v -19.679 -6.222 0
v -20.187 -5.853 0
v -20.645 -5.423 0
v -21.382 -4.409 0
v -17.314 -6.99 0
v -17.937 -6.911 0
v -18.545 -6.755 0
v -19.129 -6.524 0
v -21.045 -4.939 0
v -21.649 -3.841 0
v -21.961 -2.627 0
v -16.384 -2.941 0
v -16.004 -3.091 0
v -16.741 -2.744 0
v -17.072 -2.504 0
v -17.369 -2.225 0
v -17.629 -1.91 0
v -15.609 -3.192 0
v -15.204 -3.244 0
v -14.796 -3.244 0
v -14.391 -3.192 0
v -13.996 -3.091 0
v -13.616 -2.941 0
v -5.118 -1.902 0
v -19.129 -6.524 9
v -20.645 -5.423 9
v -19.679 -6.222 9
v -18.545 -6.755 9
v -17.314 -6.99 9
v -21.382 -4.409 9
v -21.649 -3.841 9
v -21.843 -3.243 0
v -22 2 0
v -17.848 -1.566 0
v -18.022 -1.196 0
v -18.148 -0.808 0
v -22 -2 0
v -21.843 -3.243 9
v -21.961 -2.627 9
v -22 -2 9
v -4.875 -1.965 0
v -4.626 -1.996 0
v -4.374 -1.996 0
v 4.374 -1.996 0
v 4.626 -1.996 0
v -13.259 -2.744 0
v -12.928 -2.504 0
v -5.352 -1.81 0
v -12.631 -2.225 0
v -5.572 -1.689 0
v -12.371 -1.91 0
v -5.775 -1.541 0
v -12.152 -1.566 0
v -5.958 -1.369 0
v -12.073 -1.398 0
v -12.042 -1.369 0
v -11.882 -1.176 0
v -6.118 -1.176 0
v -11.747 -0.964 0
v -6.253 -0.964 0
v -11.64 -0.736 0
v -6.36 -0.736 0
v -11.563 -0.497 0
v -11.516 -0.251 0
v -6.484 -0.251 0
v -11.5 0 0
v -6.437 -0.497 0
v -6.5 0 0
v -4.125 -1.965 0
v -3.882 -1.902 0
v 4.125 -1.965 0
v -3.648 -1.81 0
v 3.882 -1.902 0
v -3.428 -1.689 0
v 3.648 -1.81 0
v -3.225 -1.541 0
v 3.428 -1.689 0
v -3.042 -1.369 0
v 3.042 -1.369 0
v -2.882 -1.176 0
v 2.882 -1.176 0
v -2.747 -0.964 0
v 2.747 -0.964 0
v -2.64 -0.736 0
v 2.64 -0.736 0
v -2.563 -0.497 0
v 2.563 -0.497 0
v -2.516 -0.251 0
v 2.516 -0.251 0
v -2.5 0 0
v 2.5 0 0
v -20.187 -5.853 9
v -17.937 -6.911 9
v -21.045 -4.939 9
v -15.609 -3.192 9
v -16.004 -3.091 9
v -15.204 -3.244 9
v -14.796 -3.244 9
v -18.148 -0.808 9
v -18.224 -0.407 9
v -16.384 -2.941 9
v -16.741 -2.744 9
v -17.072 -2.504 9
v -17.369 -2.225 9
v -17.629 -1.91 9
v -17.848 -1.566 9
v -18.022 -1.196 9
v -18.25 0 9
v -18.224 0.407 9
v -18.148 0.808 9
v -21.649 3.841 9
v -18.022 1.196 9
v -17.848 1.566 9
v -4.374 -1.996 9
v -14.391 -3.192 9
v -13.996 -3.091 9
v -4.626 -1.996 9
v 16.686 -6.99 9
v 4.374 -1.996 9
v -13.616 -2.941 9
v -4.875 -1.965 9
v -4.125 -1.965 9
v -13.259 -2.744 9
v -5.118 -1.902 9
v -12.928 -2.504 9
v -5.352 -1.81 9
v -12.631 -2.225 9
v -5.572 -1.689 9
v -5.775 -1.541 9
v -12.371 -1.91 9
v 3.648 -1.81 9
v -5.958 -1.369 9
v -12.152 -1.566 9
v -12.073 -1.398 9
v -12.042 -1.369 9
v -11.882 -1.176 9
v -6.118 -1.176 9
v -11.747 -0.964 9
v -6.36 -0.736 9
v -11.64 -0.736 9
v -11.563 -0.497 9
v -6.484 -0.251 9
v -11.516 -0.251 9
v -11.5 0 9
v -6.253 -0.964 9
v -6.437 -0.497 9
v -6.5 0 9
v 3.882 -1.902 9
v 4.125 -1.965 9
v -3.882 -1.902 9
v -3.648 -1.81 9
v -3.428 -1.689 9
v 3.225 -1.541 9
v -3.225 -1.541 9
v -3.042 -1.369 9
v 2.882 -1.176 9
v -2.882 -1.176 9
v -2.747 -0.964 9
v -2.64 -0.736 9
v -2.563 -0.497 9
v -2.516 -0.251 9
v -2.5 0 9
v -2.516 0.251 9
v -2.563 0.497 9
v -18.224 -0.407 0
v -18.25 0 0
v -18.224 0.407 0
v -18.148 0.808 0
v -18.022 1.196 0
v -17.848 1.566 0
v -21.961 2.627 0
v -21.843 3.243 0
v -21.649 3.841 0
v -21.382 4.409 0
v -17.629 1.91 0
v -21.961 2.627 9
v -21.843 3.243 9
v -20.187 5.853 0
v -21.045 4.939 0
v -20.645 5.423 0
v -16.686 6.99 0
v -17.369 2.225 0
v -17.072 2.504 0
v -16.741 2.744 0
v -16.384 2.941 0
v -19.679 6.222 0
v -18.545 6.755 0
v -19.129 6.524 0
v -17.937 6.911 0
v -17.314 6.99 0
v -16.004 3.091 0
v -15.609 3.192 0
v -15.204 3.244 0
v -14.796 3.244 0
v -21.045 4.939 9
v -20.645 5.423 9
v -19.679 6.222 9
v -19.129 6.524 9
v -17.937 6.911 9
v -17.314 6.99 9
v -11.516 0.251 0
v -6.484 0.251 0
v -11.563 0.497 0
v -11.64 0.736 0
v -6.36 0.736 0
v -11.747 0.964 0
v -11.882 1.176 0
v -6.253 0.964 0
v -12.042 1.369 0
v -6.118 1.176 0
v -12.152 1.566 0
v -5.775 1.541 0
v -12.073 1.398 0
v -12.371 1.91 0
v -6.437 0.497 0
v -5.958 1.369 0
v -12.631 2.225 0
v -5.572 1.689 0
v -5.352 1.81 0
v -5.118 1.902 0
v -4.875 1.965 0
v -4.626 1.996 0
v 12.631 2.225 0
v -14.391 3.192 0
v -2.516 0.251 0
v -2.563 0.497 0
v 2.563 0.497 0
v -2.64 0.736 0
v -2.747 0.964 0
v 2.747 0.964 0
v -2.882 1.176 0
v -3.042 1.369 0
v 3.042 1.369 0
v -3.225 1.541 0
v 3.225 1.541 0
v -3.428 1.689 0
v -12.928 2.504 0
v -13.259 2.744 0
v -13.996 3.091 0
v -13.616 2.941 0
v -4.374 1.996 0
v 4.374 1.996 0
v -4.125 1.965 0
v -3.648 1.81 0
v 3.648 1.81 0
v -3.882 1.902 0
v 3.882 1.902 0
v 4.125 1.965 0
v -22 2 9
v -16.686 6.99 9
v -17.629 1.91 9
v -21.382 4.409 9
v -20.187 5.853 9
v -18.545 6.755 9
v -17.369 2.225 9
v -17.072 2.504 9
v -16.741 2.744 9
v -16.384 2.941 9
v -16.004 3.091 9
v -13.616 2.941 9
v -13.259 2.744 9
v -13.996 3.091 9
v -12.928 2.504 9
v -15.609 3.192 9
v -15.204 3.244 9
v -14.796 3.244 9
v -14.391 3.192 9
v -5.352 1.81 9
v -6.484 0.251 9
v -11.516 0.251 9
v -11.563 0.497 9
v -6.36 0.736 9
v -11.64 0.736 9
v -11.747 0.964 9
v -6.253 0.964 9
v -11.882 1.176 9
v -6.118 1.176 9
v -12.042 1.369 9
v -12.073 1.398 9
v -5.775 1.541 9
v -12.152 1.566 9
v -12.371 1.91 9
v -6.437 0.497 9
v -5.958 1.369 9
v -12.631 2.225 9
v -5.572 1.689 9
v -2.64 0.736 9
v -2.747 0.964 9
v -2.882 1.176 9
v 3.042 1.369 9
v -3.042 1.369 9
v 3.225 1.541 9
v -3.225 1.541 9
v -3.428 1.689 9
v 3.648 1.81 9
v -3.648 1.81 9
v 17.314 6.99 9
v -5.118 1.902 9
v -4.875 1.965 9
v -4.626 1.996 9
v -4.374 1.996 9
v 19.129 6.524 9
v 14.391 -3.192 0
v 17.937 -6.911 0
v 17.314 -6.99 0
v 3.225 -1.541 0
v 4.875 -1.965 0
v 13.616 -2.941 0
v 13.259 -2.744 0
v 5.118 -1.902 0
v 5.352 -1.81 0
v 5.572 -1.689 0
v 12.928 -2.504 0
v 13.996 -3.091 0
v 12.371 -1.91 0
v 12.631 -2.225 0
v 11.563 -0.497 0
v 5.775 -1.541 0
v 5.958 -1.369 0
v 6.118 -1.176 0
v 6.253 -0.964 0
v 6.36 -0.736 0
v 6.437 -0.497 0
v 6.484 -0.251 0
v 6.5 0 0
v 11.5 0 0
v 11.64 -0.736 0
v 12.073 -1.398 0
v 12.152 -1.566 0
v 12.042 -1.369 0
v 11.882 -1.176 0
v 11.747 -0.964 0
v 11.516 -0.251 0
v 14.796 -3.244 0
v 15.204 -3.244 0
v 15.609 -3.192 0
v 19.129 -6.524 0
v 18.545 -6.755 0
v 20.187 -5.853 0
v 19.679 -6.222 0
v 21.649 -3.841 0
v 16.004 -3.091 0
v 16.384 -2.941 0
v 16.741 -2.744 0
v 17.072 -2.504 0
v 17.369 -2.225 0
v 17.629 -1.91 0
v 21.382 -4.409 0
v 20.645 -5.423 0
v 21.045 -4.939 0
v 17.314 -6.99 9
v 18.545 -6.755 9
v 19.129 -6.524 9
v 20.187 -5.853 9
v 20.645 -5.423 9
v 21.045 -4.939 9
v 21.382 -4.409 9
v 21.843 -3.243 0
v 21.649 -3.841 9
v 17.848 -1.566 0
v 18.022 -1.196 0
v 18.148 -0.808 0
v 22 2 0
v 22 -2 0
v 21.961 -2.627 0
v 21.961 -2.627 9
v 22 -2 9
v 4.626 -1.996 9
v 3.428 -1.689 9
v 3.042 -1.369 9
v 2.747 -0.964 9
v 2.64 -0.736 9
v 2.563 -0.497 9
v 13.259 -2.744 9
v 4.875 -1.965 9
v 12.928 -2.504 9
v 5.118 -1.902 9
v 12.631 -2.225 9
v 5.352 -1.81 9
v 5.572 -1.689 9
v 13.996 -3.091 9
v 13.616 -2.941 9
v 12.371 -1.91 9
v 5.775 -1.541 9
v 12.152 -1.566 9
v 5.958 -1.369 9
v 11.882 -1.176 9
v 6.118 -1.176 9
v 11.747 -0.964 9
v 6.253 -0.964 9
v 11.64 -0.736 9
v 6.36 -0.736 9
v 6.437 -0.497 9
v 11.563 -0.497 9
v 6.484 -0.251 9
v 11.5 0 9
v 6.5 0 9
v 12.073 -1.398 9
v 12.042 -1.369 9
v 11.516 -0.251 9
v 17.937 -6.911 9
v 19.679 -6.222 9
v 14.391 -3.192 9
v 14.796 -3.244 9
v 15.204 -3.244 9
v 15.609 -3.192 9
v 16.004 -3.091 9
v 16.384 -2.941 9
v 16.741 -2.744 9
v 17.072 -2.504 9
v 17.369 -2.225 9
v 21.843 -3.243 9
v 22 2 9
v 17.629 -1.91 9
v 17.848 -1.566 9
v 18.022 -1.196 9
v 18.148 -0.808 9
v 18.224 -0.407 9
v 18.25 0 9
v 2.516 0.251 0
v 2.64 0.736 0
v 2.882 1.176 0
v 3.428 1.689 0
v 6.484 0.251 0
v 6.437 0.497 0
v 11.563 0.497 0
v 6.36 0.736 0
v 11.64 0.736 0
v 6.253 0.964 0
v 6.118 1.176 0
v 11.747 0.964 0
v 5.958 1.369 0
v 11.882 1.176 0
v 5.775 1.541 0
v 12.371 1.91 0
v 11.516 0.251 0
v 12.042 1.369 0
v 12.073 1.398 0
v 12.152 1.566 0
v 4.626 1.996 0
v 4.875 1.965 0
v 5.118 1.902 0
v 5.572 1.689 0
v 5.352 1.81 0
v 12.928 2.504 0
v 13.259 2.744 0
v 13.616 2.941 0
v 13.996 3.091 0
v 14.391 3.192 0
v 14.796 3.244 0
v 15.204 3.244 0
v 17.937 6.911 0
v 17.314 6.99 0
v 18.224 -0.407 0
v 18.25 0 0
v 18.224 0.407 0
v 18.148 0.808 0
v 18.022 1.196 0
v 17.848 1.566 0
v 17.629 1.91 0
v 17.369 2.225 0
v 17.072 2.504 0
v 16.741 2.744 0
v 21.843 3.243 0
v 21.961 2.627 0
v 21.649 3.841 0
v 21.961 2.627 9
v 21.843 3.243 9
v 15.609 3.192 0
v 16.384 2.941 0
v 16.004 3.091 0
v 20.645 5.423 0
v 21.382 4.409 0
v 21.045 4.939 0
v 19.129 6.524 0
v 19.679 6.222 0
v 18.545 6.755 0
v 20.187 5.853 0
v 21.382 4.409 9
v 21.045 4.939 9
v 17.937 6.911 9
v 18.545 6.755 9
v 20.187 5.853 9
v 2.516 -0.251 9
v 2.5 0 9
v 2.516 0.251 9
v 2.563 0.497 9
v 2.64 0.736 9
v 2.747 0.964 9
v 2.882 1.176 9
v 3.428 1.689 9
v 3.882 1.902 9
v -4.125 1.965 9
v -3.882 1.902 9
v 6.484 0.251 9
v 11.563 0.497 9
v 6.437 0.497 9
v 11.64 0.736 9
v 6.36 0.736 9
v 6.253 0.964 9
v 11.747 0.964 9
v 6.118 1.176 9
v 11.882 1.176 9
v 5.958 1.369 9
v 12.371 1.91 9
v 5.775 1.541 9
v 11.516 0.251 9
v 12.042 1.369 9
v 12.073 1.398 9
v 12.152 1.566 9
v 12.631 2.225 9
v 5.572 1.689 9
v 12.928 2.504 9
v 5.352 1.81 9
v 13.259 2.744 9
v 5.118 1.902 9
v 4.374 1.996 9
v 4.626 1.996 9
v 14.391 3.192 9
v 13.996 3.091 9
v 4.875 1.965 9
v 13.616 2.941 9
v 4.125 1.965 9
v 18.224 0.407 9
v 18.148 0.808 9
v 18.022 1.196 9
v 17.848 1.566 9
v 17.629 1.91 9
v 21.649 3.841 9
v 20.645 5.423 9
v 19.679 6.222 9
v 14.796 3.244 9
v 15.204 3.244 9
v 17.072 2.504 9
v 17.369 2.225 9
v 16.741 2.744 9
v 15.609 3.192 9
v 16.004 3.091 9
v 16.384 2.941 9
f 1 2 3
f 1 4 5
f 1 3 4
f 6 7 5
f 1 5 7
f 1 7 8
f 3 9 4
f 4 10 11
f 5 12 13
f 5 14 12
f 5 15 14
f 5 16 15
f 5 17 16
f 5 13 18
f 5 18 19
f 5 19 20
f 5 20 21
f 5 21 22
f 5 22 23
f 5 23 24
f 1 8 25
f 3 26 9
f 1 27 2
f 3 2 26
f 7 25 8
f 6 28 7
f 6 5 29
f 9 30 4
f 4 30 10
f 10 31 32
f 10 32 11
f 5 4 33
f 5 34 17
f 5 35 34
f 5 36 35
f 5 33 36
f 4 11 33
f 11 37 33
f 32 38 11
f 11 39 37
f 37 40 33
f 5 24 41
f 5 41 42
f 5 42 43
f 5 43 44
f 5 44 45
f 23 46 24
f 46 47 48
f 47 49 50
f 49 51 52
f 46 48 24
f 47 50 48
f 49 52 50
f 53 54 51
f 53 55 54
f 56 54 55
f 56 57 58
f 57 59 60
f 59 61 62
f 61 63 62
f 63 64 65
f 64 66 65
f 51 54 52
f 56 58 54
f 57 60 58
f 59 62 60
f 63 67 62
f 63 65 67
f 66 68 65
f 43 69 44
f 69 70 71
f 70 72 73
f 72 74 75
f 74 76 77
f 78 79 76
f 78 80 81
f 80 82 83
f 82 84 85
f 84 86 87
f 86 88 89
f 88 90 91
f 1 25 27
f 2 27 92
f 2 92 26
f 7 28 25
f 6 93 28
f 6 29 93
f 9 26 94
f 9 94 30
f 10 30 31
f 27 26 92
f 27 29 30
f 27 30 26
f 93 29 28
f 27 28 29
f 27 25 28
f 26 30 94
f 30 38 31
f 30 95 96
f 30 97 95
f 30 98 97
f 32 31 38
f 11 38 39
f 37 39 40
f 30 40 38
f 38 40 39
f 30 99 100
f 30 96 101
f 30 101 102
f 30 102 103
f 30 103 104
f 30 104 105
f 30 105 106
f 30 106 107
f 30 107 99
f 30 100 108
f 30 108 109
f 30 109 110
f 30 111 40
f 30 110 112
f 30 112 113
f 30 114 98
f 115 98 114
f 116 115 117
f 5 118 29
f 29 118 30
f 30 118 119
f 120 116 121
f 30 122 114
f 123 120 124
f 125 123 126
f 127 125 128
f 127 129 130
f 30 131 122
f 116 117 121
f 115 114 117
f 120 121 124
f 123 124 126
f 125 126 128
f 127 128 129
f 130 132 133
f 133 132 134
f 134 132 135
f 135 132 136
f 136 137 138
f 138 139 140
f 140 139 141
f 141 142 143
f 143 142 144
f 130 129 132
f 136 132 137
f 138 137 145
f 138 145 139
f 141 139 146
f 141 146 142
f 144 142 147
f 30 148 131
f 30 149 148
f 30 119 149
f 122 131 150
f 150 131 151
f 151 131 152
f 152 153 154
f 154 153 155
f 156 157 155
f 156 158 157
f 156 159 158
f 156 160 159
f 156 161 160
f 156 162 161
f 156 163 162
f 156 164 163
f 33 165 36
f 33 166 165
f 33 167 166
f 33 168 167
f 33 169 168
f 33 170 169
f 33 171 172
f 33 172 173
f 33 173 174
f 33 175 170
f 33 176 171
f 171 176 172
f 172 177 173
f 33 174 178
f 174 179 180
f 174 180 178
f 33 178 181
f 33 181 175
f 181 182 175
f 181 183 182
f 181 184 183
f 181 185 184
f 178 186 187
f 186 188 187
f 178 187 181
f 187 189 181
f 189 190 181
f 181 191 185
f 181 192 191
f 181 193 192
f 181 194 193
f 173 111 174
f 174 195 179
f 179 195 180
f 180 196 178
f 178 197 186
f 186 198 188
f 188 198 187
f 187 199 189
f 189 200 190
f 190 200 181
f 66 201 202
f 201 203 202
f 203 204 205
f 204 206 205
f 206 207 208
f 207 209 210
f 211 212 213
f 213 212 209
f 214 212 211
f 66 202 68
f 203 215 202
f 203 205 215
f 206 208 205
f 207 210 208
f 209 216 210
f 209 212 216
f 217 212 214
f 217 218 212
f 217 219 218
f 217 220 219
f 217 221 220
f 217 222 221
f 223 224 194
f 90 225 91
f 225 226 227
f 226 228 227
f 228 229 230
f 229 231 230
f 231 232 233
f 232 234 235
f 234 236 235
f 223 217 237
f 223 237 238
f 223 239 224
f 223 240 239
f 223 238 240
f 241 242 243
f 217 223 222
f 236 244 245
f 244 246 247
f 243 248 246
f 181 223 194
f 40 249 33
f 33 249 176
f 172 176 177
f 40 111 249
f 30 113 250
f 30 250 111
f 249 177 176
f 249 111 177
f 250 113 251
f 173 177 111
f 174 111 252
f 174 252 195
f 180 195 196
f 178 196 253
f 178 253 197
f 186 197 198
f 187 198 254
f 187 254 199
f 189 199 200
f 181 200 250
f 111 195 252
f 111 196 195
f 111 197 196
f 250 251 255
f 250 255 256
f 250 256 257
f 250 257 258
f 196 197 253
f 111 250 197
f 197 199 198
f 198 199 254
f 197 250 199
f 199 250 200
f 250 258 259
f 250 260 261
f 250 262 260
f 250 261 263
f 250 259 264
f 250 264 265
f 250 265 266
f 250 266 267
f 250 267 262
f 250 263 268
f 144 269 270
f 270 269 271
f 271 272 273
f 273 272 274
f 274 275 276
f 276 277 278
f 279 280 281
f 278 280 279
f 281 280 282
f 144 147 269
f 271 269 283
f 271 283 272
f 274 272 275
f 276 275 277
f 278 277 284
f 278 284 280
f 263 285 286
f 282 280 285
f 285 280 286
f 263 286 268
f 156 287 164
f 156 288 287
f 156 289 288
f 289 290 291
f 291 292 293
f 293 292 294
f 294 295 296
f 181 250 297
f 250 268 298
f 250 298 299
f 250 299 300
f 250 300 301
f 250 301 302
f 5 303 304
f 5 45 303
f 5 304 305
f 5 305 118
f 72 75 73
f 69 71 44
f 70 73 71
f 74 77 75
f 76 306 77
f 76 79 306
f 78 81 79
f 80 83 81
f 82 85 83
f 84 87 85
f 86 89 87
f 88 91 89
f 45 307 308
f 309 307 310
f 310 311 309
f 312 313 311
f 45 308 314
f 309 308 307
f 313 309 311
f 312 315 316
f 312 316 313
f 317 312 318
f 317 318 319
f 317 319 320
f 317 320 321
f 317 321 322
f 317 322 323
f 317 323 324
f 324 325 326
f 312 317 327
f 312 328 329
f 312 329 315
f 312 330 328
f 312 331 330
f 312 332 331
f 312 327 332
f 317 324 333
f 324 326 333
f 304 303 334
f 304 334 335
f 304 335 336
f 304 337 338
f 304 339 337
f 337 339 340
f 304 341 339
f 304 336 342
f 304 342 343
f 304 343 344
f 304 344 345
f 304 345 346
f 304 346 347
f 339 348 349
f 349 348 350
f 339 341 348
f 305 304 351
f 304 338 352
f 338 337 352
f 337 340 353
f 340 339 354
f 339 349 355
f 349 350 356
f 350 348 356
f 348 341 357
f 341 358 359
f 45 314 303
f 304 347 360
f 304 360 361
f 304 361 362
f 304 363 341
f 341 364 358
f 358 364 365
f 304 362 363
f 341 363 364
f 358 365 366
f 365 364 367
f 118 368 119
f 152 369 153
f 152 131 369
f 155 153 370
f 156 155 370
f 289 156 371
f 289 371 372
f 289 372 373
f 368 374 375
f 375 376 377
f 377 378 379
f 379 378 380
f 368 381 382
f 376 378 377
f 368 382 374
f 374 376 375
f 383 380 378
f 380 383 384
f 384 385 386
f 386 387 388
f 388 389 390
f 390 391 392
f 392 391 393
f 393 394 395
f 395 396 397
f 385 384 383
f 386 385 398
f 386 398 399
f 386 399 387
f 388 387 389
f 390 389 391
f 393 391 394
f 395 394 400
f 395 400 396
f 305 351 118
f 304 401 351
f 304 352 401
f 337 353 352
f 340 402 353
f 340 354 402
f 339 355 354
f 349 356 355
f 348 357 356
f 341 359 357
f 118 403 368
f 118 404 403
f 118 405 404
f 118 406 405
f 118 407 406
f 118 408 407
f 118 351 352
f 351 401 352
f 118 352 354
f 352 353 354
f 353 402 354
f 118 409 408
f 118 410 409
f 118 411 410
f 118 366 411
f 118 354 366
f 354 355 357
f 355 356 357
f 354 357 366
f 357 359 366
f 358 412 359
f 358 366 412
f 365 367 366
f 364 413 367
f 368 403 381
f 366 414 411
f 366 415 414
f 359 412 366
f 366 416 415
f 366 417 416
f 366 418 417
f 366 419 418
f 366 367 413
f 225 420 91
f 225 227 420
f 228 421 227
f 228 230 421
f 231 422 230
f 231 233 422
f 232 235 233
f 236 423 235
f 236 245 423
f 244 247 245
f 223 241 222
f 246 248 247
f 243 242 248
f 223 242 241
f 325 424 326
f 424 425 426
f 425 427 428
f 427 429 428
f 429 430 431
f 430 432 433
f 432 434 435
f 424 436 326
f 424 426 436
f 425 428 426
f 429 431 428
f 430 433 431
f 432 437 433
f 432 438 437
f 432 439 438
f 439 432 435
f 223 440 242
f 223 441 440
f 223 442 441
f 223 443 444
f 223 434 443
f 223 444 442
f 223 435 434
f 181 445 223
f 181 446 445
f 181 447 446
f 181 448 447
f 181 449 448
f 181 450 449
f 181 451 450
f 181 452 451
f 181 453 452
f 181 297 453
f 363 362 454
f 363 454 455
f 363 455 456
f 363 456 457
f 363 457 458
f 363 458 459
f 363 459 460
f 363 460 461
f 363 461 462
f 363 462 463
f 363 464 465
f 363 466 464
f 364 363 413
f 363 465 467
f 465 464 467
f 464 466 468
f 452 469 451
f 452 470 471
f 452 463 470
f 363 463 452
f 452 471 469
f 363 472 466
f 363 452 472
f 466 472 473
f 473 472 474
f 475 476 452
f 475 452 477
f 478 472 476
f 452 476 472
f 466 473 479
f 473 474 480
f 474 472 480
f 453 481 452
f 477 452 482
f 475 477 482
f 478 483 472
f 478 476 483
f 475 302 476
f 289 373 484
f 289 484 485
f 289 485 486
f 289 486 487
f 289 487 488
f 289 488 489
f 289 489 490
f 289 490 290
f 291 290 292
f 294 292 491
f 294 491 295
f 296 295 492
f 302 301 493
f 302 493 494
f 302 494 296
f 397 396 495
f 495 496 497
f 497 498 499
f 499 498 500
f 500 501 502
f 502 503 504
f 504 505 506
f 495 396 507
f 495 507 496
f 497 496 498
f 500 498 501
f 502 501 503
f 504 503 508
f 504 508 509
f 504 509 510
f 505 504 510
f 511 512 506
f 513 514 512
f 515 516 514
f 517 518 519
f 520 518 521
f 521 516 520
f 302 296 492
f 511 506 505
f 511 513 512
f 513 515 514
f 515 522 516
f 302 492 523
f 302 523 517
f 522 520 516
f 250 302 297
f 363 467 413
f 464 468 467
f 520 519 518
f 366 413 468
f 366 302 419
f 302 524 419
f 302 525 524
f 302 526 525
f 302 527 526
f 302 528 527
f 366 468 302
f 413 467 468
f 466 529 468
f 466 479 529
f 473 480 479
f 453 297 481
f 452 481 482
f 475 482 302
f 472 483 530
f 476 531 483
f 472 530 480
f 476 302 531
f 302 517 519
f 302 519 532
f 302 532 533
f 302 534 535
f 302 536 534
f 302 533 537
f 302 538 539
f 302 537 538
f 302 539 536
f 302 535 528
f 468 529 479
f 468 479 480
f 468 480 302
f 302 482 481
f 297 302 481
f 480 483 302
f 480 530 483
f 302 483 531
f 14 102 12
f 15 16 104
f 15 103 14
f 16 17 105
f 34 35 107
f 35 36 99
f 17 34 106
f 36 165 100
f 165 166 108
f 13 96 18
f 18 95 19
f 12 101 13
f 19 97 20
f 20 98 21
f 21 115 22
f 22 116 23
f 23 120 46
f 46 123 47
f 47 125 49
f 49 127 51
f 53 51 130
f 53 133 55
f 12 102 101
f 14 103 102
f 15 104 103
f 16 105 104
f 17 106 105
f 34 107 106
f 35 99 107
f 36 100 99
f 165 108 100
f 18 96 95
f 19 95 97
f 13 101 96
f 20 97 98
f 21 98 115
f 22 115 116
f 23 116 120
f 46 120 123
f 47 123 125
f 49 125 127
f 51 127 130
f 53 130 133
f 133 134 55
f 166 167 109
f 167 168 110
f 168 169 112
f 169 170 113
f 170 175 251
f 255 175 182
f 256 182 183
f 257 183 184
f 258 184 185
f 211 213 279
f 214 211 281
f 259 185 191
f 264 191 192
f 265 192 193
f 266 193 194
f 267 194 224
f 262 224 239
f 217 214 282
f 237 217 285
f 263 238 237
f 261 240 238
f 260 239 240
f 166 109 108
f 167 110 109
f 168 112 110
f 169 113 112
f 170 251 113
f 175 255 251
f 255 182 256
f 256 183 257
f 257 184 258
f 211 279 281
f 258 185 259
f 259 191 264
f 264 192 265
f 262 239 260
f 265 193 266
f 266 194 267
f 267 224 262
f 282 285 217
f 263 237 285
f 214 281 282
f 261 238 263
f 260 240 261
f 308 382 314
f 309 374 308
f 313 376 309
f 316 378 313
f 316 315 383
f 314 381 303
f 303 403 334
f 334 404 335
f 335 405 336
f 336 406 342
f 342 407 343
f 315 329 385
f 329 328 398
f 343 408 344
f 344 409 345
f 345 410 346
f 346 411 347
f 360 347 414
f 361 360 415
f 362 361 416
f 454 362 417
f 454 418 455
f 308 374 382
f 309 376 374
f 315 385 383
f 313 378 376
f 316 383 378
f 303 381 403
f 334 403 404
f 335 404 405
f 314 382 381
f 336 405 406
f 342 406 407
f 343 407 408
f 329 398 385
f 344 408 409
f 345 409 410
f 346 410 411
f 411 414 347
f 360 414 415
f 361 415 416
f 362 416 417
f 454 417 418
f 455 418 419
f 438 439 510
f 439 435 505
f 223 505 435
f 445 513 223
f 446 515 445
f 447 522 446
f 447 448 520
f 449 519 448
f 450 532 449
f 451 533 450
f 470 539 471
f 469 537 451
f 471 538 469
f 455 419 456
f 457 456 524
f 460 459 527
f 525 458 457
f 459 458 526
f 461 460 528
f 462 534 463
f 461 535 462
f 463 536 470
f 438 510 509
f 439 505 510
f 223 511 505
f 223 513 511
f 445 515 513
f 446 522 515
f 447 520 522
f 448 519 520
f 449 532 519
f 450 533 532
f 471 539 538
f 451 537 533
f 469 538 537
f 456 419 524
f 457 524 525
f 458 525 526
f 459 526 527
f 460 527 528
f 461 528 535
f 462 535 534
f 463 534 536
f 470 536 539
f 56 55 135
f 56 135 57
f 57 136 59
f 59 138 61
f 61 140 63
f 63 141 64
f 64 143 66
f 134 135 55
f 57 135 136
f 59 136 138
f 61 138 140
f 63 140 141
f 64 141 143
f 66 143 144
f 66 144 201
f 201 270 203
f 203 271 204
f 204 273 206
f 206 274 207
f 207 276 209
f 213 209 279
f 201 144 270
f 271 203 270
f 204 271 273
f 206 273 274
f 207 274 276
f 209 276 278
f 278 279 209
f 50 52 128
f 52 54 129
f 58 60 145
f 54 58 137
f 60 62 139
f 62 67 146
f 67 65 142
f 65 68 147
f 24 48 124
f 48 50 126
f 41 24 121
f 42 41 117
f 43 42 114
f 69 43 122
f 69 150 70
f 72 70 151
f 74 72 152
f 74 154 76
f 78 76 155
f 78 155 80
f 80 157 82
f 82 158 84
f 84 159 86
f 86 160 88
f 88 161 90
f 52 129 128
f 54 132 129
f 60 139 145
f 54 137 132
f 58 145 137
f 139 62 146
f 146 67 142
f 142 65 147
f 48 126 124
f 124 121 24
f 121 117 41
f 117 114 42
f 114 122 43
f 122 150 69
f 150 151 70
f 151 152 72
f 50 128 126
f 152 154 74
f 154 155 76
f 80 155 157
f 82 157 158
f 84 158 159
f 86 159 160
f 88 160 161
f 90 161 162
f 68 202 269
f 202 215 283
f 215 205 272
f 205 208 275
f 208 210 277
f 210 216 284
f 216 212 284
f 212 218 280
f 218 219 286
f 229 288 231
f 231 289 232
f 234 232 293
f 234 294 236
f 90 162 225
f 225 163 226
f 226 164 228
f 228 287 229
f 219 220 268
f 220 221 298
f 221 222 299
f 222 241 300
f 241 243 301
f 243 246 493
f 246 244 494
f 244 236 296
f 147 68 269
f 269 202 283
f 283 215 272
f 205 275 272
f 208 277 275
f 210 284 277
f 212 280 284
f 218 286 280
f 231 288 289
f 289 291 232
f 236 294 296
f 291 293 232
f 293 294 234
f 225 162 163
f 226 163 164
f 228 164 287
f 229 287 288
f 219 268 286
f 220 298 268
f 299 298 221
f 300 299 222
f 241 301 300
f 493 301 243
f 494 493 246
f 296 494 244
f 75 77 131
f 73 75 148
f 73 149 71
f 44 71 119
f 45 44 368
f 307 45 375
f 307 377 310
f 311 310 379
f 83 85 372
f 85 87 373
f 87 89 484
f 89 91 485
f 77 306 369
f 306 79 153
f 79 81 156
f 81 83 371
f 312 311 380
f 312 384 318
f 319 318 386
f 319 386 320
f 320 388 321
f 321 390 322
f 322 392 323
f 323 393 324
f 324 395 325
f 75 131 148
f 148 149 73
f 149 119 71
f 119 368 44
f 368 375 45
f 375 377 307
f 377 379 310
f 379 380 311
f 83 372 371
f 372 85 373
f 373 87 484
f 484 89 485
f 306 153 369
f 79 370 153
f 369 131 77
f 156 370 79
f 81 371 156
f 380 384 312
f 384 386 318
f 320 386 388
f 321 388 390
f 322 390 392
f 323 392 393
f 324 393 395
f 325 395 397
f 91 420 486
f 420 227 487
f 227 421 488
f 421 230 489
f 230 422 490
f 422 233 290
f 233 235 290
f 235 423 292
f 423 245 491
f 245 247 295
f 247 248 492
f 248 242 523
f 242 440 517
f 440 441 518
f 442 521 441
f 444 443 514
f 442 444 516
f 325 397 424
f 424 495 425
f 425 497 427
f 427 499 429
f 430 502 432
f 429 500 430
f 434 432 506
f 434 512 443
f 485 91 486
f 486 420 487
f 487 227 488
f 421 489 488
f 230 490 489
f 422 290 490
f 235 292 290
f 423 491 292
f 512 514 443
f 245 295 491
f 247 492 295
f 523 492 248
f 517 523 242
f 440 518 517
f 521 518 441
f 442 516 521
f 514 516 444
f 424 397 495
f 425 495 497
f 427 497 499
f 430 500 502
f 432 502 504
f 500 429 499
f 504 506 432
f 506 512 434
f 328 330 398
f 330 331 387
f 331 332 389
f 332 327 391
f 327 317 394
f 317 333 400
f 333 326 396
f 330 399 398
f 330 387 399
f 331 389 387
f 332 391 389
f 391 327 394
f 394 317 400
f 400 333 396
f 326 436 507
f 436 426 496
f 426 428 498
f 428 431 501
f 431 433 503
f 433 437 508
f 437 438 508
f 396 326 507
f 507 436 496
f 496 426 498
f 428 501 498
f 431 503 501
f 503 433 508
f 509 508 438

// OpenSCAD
$fn = 50;

difference() {
	union() {
		hull() {
			translate(v = [-17.0, 2.0, 0]) {
				cylinder(h = 9, r = 5);
			}
			translate(v = [17.0, 2.0, 0]) {
				cylinder(h = 9, r = 5);
			}
			translate(v = [-17.0, -2.0, 0]) {
				cylinder(h = 9, r = 5);
			}
			translate(v = [17.0, -2.0, 0]) {
				cylinder(h = 9, r = 5);
			}
		}
	}
	union() {
		translate(v = [-15.0, 0.0, -100.0]) {
			cylinder(h = 200, r = 3.25);
		}
		translate(v = [15.0, 0.0, -100.0]) {
			cylinder(h = 200, r = 3.25);
		}
		translate(v = [-15.0, 0.0, -100.0]) {
			cylinder(h = 200, r = 1.8);
		}
		translate(v = [15.0, 0.0, -100.0]) {
			cylinder(h = 200, r = 1.8);
		}
		translate(v = [-13.5, 0, 0.0]) {
			cylinder(h = 9, r = 2.0);
		}
		translate(v = [-4.5, 0, 0.0]) {
			cylinder(h = 9, r = 2.0);
		}
		translate(v = [4.5, 0, 0.0]) {
			cylinder(h = 9, r = 2.0);
		}
		translate(v = [13.5, 0, 0.0]) {
			cylinder(h = 9, r = 2.0);
		}
	}
}
